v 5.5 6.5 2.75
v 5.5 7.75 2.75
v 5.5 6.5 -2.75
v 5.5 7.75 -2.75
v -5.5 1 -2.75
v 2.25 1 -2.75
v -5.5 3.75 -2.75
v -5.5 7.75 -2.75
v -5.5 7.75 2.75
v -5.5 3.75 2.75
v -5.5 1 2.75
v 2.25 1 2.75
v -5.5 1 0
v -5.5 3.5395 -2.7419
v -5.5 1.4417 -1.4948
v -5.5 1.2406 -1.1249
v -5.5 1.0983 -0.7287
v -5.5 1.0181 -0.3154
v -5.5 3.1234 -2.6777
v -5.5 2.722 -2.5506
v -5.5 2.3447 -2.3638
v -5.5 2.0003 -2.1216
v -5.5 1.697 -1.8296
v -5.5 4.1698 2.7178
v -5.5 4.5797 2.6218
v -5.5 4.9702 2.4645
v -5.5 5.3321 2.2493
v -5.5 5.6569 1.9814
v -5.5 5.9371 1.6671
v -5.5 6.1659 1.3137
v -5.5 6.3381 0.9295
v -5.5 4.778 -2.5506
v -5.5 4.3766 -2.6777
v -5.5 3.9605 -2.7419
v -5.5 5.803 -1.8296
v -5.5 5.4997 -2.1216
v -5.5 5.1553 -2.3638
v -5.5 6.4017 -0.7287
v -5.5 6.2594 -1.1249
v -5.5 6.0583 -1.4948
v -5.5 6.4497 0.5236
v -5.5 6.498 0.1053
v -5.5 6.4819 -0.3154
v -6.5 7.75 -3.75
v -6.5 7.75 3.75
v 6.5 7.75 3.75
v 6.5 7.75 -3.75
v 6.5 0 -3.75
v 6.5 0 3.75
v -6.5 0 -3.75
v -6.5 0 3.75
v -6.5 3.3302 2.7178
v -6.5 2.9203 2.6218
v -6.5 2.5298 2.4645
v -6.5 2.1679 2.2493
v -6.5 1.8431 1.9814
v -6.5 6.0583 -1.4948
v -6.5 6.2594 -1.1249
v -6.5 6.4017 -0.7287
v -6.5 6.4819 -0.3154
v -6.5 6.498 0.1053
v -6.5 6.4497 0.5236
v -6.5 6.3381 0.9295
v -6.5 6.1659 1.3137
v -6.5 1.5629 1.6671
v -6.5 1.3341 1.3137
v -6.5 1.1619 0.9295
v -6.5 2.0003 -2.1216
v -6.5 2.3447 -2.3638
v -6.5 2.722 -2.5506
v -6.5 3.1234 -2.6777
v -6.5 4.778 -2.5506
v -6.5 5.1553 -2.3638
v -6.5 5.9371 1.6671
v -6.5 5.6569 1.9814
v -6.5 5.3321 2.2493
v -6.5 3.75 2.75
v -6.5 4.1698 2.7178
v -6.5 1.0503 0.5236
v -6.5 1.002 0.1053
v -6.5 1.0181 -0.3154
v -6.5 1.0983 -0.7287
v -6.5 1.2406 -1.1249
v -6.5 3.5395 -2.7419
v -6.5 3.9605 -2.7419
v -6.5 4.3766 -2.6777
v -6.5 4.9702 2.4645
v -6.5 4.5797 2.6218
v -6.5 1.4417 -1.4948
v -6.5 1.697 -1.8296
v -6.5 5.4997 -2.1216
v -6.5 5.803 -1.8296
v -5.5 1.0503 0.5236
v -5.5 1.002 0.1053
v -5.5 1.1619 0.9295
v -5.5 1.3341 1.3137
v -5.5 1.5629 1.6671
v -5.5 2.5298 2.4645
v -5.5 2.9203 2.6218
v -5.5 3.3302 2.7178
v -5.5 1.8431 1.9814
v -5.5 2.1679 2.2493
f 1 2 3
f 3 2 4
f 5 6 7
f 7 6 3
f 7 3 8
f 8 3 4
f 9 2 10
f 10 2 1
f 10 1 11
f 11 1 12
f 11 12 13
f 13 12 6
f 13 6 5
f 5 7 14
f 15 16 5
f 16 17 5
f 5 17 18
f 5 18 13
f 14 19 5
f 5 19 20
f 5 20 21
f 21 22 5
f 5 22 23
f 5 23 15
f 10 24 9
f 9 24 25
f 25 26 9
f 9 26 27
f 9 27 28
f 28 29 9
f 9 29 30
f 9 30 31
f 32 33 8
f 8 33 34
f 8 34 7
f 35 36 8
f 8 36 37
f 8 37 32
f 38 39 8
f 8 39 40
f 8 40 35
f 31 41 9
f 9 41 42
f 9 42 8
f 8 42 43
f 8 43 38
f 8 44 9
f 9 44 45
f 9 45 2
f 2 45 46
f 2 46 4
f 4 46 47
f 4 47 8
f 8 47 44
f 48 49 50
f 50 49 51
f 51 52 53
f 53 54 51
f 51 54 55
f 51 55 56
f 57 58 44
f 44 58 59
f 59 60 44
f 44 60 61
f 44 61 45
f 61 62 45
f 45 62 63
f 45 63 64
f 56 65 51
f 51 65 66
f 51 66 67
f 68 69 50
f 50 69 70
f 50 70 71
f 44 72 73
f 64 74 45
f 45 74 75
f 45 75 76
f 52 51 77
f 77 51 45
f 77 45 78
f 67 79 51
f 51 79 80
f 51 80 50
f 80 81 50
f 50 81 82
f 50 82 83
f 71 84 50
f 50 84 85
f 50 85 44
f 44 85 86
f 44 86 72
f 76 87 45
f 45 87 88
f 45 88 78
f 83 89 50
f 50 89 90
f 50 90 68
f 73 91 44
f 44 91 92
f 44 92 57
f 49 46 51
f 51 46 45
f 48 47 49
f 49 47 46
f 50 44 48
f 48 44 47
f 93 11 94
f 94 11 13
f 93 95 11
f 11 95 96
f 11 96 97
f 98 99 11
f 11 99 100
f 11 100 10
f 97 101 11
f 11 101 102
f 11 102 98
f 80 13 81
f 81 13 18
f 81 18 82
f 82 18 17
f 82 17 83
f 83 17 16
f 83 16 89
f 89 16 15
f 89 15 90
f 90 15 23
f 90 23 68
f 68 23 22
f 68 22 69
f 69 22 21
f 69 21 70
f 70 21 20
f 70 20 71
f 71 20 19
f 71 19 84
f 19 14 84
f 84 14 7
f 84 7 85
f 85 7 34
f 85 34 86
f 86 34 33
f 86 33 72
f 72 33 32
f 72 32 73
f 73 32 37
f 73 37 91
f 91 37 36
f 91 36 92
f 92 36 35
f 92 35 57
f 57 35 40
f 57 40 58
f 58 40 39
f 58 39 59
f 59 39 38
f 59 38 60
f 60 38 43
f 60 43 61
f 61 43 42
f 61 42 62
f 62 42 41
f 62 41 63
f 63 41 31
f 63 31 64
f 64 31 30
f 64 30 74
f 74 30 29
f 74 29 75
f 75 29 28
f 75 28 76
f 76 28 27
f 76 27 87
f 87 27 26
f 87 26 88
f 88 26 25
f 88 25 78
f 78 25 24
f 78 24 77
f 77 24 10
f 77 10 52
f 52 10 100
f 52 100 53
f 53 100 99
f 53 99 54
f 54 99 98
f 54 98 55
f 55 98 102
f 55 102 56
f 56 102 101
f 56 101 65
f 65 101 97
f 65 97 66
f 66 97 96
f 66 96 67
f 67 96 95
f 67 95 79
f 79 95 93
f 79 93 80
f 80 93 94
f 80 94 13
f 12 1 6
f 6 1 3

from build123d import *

# Parameters (mm, degrees)
SKETCH1_W           = 13
SKETCH1_H           = 7.5
SKETCH1_W_2         = 11
SKETCH1_H_2         = 5.5
BOSS_EXTRUDE1_DEPTH = 7.75
SKETCH2_R           = 2.75
CUT_EXTRUDE1_DEPTH  = 1
SKETCH3_W           = 13
SKETCH3_H           = 7.5
BOSS_EXTRUDE2_DEPTH = 1
BOSS_EXTRUDE3_DEPTH = 3


with BuildPart() as part:
    # Sketch1 → Boss-Extrude1 (new body)
    with BuildSketch(Plane(origin=(0, 0, 0), x_dir=(1, 0, 0), z_dir=(0, 1, 0))):
        Rectangle(SKETCH1_W, SKETCH1_H)
        Rectangle(SKETCH1_W_2, SKETCH1_H_2, mode=Mode.SUBTRACT)
    extrude(amount=BOSS_EXTRUDE1_DEPTH)

    # Sketch2 → Cut-Extrude1 (cut)
    with BuildSketch(Plane.ZY.offset(6.5)):
        with Locations((0, 3.75)):
            Circle(SKETCH2_R)
    extrude(amount=-CUT_EXTRUDE1_DEPTH, mode=Mode.SUBTRACT)

    # Sketch3 → Boss-Extrude2 (add)
    with BuildSketch(Plane.XZ):
        Rectangle(SKETCH3_W, SKETCH3_H)
    extrude(amount=-BOSS_EXTRUDE2_DEPTH)

    # Sketch4 → Boss-Extrude3 (add, symmetric)
    with BuildSketch(Plane.XY):
        Polygon((2.25, 1), (5.5, 6.5), (5.5, 1), align=None)
    extrude(amount=BOSS_EXTRUDE3_DEPTH, both=True)


solid = part.part
